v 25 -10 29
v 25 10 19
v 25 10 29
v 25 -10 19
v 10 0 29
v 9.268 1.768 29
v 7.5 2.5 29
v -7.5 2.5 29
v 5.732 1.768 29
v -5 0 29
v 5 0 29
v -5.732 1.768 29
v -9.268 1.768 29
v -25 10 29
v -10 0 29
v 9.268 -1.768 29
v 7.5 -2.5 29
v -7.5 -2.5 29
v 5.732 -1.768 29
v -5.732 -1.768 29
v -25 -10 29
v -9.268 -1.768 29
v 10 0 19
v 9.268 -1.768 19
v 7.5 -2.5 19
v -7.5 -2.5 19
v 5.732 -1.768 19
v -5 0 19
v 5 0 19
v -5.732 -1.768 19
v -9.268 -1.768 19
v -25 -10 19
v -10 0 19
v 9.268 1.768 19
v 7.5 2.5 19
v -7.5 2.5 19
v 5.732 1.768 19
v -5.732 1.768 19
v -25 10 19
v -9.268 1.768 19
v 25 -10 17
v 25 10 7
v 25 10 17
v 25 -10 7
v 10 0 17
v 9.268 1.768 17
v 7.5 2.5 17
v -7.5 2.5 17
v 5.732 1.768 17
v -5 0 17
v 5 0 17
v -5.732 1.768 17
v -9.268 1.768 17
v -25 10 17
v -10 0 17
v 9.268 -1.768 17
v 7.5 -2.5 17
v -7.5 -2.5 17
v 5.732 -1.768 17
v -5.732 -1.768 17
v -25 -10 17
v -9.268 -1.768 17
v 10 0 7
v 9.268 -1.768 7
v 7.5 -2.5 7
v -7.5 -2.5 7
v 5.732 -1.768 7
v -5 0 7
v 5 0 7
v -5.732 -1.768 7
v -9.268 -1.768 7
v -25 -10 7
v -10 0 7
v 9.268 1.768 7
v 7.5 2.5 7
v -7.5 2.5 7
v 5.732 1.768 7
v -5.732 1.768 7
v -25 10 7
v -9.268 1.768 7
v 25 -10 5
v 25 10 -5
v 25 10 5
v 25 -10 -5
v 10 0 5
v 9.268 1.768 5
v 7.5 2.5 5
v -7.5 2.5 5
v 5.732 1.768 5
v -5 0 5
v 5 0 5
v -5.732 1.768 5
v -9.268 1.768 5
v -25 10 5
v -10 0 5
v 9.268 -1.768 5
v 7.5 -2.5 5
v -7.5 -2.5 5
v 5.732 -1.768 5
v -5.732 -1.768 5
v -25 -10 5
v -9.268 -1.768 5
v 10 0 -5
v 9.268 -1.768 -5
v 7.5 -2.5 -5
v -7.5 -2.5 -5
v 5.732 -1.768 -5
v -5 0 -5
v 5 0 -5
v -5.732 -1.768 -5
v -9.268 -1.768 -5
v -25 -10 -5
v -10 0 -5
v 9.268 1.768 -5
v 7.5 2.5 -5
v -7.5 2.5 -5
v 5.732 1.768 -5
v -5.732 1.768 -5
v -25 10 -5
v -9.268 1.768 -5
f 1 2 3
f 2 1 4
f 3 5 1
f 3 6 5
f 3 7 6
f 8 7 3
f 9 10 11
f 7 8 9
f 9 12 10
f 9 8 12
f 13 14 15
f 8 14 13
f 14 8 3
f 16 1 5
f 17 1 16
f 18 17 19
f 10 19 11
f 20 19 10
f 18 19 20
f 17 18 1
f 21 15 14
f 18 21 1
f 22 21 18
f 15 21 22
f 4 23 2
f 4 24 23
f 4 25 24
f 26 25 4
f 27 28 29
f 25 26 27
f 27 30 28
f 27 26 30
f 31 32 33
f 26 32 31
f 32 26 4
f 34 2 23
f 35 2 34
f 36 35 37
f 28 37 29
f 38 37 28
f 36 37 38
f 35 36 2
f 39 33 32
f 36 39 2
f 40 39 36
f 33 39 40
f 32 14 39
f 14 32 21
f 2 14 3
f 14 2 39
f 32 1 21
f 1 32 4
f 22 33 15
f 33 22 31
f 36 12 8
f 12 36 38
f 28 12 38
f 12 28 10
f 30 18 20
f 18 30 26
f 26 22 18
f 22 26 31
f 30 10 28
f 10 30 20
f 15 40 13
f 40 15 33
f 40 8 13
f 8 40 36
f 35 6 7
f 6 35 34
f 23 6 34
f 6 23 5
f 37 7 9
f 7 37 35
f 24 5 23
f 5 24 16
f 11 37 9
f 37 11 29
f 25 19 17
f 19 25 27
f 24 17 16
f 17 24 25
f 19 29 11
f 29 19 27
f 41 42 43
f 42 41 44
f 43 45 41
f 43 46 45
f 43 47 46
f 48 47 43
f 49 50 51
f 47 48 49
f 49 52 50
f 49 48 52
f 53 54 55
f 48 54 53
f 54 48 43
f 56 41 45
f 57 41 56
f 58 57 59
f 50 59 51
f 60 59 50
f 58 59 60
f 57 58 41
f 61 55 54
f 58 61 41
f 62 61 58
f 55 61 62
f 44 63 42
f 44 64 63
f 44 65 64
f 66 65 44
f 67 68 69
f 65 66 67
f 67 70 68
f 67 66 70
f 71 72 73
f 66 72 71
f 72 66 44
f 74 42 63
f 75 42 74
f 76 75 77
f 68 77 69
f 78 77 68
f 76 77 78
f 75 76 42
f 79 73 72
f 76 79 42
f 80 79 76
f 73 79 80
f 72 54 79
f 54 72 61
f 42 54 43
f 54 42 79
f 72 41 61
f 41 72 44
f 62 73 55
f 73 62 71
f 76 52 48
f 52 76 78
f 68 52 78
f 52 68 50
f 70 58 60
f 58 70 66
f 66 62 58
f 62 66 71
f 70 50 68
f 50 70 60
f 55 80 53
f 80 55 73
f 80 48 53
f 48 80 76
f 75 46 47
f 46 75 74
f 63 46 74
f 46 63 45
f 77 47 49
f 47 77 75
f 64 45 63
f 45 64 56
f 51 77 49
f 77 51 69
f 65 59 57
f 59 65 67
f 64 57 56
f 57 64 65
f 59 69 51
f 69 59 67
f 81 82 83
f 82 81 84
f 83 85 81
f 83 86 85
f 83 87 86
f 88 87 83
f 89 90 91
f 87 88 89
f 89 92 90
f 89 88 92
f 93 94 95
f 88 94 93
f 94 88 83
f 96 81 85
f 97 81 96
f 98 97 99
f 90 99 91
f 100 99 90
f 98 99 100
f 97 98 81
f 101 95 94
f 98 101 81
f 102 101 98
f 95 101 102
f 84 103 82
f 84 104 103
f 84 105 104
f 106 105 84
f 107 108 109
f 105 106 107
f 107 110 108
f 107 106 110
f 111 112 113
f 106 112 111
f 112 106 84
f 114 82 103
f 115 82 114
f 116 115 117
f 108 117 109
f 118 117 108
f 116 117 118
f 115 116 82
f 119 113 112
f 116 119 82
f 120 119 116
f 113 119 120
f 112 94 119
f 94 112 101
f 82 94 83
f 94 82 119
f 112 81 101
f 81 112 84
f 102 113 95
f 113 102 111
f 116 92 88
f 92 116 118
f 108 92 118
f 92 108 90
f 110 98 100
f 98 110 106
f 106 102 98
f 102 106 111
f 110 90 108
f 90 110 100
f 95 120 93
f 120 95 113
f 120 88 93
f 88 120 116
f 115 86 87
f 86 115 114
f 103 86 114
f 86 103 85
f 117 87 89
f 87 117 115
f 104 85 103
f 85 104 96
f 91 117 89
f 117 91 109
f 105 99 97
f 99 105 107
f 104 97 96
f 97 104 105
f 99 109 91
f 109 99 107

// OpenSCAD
// Dimensions for the rectangular blocks
block_length = 50;  // length of block
block_width = 20;   // width of block
block_height = 10;  // height of block
hole_diameter = 5;  // diameter of holes
hole_spacing = 15;  // distance between hole centers
layer_spacing = 12; // vertical spacing between layers

module rectangular_block_with_holes() {
    // Create the block
    difference() {
        // Main block
        cube([block_length, block_width, block_height], center = true);

        // Holes in the block
        translate([-hole_spacing / 2, 0, 0])
            cylinder(h = block_height + 2, r = hole_diameter / 2, center = true);

        translate([hole_spacing / 2, 0, 0])
            cylinder(h = block_height + 2, r = hole_diameter / 2, center = true);
    }
}

// Layer arrangement
translate([0, 0, layer_spacing * 2])
    rectangular_block_with_holes();  // Top block (layer_1)

translate([0, 0, layer_spacing])
    rectangular_block_with_holes();  // Middle block (layer_2)

translate([0, 0, 0])
    rectangular_block_with_holes();  // Bottom block (layer_3)
